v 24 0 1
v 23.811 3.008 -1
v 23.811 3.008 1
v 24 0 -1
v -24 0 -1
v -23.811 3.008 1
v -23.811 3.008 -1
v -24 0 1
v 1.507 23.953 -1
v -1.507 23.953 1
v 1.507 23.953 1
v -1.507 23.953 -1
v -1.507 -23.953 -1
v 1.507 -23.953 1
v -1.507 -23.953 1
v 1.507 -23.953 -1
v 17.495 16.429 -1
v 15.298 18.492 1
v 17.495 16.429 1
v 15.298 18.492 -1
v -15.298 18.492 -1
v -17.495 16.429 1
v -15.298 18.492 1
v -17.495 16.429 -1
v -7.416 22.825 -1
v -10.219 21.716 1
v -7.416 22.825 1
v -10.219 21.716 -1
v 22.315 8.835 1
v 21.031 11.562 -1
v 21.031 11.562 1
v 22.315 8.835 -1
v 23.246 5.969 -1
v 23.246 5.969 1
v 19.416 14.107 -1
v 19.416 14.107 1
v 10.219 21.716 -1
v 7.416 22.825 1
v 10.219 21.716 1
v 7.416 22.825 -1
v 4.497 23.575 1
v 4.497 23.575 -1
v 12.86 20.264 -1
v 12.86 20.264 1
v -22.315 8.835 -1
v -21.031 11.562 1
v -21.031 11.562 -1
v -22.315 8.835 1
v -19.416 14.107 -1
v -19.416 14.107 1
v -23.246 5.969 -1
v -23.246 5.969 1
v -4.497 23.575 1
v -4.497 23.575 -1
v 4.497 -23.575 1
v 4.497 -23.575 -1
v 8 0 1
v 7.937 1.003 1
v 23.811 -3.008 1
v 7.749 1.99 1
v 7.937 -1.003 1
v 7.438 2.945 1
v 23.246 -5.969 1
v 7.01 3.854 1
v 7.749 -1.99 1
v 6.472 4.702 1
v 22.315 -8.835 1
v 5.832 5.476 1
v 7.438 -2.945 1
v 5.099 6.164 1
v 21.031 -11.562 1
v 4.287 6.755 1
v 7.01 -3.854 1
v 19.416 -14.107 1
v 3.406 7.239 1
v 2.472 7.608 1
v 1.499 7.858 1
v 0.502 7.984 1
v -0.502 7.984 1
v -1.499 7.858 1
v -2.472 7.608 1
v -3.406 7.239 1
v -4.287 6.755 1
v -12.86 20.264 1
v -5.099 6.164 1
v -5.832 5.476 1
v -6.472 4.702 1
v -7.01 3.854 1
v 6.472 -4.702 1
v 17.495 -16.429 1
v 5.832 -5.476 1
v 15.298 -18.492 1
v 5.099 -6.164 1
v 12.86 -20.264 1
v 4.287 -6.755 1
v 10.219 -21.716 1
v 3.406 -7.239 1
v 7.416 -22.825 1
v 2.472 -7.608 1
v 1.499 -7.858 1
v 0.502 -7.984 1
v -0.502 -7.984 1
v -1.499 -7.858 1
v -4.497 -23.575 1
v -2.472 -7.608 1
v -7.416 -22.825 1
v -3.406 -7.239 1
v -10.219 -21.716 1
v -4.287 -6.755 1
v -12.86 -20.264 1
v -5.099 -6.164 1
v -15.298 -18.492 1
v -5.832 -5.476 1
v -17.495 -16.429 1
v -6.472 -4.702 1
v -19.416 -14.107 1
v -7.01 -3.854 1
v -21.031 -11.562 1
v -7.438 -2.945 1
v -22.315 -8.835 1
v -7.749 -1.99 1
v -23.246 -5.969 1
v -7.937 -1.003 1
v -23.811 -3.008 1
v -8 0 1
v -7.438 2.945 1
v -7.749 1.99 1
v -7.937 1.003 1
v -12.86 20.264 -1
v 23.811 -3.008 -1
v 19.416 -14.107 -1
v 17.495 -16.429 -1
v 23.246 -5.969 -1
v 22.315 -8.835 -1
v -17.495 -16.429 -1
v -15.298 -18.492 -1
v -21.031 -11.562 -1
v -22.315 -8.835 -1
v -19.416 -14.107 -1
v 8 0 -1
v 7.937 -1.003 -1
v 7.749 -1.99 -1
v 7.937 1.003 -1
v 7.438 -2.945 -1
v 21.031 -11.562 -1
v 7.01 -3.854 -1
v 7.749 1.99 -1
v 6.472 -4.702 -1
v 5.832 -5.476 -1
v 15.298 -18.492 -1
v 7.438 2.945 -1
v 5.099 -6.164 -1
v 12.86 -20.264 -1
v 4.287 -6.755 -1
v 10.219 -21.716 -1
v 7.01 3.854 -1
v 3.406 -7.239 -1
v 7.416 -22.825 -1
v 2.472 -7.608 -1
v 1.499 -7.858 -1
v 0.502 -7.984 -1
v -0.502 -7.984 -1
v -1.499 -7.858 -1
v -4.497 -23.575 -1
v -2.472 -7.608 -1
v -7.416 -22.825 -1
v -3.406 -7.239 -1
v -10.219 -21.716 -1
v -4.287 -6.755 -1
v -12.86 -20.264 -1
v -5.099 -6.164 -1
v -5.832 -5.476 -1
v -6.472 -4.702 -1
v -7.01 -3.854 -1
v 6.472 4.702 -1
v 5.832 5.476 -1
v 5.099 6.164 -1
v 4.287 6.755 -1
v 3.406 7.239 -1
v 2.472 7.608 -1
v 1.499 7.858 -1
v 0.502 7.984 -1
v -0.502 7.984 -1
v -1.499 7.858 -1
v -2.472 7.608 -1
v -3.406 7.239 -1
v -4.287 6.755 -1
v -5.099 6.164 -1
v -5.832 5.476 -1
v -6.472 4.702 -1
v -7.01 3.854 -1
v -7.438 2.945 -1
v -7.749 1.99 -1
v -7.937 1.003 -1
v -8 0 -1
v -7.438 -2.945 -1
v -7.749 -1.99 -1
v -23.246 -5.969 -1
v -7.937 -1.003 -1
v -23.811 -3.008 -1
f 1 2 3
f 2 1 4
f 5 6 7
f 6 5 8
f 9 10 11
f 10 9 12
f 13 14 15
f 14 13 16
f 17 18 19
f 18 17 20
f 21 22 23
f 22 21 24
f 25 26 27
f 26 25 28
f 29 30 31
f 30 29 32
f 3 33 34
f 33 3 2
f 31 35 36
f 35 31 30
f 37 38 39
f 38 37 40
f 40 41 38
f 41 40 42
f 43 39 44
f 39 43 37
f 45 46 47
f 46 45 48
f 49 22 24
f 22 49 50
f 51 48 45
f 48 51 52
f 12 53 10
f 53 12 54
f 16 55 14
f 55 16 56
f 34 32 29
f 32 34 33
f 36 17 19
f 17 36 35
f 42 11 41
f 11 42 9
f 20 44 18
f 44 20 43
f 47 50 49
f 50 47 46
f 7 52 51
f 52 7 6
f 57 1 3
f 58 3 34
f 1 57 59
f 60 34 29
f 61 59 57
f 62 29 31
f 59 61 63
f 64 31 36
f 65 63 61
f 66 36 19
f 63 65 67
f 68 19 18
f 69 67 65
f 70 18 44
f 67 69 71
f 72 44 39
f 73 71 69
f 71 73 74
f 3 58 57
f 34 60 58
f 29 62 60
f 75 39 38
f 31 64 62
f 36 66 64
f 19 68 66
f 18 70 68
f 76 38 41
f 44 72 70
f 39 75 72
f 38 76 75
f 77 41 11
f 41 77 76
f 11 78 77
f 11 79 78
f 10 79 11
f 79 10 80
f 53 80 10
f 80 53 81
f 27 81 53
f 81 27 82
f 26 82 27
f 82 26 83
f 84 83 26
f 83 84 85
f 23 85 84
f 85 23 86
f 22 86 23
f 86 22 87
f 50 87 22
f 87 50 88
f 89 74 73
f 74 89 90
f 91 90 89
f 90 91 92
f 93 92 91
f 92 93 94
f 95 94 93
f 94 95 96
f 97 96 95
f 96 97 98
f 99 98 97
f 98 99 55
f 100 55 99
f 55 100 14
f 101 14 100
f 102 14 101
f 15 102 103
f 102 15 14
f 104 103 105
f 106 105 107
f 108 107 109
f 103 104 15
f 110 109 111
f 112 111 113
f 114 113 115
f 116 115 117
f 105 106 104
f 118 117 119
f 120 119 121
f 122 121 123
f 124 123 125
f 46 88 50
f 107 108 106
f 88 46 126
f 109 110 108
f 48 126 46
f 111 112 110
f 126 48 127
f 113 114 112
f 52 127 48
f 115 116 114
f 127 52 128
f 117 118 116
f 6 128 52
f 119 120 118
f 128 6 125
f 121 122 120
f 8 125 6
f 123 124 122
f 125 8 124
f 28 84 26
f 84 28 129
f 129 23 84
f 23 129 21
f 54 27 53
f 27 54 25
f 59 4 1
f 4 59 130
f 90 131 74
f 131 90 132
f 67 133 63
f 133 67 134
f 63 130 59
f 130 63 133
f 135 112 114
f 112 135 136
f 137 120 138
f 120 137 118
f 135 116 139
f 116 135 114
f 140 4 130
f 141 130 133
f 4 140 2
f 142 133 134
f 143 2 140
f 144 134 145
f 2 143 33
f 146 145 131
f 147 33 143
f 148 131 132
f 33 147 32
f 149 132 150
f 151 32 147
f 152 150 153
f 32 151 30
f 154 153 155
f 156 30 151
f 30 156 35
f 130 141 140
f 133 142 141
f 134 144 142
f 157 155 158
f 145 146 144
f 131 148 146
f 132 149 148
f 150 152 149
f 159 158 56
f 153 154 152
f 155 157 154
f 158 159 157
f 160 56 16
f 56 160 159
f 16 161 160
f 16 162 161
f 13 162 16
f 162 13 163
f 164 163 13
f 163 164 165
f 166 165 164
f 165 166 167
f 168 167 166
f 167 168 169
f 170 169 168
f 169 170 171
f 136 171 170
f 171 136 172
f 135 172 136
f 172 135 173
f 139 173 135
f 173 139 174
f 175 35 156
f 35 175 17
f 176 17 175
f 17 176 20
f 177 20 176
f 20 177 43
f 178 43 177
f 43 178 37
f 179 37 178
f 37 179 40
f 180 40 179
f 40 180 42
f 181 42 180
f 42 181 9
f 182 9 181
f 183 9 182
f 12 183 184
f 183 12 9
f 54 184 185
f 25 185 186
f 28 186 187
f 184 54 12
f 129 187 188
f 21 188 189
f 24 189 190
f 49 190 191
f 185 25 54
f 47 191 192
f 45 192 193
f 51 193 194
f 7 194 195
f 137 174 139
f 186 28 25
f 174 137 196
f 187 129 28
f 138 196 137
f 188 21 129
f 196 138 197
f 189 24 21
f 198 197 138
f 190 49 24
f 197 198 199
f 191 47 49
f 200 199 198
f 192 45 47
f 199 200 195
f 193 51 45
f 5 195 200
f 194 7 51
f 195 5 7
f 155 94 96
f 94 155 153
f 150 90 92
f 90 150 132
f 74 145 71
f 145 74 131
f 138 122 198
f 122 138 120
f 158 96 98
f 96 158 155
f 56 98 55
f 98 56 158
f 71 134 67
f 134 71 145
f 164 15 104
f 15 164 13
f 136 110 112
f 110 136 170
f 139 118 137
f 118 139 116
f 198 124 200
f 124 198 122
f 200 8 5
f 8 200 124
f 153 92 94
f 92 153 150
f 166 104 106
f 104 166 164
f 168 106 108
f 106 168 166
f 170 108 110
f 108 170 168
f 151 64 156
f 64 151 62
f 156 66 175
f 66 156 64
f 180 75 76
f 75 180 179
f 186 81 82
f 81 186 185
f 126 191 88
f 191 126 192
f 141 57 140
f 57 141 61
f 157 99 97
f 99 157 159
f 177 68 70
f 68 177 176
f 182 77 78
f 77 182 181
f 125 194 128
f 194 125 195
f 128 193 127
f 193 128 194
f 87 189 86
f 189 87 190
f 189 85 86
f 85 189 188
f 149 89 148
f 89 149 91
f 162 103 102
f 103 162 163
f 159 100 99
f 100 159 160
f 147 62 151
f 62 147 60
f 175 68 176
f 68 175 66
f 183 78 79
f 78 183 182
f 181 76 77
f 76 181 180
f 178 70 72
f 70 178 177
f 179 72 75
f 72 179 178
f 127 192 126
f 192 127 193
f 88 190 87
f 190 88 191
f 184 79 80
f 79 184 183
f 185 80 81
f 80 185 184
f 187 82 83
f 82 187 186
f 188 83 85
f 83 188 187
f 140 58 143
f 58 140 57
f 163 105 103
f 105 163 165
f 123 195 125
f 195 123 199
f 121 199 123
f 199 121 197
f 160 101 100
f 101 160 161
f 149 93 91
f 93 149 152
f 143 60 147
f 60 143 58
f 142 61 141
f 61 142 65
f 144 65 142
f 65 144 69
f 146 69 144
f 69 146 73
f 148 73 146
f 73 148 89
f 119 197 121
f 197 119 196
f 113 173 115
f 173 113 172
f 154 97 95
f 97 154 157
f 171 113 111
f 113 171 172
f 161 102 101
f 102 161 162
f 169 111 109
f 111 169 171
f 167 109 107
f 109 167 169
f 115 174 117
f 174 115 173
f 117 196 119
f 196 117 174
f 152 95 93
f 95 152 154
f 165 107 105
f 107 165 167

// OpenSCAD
$fn = 50;


difference() {
	union() {
		translate(v = [0, 0, -1.0000000000]) {
			cylinder(h = 2, r = 24.0000000000);
		}
	}
	union() {
		translate(v = [0, 0, -100.0000000000]) {
			cylinder(h = 200, r = 8);
		}
	}
}
